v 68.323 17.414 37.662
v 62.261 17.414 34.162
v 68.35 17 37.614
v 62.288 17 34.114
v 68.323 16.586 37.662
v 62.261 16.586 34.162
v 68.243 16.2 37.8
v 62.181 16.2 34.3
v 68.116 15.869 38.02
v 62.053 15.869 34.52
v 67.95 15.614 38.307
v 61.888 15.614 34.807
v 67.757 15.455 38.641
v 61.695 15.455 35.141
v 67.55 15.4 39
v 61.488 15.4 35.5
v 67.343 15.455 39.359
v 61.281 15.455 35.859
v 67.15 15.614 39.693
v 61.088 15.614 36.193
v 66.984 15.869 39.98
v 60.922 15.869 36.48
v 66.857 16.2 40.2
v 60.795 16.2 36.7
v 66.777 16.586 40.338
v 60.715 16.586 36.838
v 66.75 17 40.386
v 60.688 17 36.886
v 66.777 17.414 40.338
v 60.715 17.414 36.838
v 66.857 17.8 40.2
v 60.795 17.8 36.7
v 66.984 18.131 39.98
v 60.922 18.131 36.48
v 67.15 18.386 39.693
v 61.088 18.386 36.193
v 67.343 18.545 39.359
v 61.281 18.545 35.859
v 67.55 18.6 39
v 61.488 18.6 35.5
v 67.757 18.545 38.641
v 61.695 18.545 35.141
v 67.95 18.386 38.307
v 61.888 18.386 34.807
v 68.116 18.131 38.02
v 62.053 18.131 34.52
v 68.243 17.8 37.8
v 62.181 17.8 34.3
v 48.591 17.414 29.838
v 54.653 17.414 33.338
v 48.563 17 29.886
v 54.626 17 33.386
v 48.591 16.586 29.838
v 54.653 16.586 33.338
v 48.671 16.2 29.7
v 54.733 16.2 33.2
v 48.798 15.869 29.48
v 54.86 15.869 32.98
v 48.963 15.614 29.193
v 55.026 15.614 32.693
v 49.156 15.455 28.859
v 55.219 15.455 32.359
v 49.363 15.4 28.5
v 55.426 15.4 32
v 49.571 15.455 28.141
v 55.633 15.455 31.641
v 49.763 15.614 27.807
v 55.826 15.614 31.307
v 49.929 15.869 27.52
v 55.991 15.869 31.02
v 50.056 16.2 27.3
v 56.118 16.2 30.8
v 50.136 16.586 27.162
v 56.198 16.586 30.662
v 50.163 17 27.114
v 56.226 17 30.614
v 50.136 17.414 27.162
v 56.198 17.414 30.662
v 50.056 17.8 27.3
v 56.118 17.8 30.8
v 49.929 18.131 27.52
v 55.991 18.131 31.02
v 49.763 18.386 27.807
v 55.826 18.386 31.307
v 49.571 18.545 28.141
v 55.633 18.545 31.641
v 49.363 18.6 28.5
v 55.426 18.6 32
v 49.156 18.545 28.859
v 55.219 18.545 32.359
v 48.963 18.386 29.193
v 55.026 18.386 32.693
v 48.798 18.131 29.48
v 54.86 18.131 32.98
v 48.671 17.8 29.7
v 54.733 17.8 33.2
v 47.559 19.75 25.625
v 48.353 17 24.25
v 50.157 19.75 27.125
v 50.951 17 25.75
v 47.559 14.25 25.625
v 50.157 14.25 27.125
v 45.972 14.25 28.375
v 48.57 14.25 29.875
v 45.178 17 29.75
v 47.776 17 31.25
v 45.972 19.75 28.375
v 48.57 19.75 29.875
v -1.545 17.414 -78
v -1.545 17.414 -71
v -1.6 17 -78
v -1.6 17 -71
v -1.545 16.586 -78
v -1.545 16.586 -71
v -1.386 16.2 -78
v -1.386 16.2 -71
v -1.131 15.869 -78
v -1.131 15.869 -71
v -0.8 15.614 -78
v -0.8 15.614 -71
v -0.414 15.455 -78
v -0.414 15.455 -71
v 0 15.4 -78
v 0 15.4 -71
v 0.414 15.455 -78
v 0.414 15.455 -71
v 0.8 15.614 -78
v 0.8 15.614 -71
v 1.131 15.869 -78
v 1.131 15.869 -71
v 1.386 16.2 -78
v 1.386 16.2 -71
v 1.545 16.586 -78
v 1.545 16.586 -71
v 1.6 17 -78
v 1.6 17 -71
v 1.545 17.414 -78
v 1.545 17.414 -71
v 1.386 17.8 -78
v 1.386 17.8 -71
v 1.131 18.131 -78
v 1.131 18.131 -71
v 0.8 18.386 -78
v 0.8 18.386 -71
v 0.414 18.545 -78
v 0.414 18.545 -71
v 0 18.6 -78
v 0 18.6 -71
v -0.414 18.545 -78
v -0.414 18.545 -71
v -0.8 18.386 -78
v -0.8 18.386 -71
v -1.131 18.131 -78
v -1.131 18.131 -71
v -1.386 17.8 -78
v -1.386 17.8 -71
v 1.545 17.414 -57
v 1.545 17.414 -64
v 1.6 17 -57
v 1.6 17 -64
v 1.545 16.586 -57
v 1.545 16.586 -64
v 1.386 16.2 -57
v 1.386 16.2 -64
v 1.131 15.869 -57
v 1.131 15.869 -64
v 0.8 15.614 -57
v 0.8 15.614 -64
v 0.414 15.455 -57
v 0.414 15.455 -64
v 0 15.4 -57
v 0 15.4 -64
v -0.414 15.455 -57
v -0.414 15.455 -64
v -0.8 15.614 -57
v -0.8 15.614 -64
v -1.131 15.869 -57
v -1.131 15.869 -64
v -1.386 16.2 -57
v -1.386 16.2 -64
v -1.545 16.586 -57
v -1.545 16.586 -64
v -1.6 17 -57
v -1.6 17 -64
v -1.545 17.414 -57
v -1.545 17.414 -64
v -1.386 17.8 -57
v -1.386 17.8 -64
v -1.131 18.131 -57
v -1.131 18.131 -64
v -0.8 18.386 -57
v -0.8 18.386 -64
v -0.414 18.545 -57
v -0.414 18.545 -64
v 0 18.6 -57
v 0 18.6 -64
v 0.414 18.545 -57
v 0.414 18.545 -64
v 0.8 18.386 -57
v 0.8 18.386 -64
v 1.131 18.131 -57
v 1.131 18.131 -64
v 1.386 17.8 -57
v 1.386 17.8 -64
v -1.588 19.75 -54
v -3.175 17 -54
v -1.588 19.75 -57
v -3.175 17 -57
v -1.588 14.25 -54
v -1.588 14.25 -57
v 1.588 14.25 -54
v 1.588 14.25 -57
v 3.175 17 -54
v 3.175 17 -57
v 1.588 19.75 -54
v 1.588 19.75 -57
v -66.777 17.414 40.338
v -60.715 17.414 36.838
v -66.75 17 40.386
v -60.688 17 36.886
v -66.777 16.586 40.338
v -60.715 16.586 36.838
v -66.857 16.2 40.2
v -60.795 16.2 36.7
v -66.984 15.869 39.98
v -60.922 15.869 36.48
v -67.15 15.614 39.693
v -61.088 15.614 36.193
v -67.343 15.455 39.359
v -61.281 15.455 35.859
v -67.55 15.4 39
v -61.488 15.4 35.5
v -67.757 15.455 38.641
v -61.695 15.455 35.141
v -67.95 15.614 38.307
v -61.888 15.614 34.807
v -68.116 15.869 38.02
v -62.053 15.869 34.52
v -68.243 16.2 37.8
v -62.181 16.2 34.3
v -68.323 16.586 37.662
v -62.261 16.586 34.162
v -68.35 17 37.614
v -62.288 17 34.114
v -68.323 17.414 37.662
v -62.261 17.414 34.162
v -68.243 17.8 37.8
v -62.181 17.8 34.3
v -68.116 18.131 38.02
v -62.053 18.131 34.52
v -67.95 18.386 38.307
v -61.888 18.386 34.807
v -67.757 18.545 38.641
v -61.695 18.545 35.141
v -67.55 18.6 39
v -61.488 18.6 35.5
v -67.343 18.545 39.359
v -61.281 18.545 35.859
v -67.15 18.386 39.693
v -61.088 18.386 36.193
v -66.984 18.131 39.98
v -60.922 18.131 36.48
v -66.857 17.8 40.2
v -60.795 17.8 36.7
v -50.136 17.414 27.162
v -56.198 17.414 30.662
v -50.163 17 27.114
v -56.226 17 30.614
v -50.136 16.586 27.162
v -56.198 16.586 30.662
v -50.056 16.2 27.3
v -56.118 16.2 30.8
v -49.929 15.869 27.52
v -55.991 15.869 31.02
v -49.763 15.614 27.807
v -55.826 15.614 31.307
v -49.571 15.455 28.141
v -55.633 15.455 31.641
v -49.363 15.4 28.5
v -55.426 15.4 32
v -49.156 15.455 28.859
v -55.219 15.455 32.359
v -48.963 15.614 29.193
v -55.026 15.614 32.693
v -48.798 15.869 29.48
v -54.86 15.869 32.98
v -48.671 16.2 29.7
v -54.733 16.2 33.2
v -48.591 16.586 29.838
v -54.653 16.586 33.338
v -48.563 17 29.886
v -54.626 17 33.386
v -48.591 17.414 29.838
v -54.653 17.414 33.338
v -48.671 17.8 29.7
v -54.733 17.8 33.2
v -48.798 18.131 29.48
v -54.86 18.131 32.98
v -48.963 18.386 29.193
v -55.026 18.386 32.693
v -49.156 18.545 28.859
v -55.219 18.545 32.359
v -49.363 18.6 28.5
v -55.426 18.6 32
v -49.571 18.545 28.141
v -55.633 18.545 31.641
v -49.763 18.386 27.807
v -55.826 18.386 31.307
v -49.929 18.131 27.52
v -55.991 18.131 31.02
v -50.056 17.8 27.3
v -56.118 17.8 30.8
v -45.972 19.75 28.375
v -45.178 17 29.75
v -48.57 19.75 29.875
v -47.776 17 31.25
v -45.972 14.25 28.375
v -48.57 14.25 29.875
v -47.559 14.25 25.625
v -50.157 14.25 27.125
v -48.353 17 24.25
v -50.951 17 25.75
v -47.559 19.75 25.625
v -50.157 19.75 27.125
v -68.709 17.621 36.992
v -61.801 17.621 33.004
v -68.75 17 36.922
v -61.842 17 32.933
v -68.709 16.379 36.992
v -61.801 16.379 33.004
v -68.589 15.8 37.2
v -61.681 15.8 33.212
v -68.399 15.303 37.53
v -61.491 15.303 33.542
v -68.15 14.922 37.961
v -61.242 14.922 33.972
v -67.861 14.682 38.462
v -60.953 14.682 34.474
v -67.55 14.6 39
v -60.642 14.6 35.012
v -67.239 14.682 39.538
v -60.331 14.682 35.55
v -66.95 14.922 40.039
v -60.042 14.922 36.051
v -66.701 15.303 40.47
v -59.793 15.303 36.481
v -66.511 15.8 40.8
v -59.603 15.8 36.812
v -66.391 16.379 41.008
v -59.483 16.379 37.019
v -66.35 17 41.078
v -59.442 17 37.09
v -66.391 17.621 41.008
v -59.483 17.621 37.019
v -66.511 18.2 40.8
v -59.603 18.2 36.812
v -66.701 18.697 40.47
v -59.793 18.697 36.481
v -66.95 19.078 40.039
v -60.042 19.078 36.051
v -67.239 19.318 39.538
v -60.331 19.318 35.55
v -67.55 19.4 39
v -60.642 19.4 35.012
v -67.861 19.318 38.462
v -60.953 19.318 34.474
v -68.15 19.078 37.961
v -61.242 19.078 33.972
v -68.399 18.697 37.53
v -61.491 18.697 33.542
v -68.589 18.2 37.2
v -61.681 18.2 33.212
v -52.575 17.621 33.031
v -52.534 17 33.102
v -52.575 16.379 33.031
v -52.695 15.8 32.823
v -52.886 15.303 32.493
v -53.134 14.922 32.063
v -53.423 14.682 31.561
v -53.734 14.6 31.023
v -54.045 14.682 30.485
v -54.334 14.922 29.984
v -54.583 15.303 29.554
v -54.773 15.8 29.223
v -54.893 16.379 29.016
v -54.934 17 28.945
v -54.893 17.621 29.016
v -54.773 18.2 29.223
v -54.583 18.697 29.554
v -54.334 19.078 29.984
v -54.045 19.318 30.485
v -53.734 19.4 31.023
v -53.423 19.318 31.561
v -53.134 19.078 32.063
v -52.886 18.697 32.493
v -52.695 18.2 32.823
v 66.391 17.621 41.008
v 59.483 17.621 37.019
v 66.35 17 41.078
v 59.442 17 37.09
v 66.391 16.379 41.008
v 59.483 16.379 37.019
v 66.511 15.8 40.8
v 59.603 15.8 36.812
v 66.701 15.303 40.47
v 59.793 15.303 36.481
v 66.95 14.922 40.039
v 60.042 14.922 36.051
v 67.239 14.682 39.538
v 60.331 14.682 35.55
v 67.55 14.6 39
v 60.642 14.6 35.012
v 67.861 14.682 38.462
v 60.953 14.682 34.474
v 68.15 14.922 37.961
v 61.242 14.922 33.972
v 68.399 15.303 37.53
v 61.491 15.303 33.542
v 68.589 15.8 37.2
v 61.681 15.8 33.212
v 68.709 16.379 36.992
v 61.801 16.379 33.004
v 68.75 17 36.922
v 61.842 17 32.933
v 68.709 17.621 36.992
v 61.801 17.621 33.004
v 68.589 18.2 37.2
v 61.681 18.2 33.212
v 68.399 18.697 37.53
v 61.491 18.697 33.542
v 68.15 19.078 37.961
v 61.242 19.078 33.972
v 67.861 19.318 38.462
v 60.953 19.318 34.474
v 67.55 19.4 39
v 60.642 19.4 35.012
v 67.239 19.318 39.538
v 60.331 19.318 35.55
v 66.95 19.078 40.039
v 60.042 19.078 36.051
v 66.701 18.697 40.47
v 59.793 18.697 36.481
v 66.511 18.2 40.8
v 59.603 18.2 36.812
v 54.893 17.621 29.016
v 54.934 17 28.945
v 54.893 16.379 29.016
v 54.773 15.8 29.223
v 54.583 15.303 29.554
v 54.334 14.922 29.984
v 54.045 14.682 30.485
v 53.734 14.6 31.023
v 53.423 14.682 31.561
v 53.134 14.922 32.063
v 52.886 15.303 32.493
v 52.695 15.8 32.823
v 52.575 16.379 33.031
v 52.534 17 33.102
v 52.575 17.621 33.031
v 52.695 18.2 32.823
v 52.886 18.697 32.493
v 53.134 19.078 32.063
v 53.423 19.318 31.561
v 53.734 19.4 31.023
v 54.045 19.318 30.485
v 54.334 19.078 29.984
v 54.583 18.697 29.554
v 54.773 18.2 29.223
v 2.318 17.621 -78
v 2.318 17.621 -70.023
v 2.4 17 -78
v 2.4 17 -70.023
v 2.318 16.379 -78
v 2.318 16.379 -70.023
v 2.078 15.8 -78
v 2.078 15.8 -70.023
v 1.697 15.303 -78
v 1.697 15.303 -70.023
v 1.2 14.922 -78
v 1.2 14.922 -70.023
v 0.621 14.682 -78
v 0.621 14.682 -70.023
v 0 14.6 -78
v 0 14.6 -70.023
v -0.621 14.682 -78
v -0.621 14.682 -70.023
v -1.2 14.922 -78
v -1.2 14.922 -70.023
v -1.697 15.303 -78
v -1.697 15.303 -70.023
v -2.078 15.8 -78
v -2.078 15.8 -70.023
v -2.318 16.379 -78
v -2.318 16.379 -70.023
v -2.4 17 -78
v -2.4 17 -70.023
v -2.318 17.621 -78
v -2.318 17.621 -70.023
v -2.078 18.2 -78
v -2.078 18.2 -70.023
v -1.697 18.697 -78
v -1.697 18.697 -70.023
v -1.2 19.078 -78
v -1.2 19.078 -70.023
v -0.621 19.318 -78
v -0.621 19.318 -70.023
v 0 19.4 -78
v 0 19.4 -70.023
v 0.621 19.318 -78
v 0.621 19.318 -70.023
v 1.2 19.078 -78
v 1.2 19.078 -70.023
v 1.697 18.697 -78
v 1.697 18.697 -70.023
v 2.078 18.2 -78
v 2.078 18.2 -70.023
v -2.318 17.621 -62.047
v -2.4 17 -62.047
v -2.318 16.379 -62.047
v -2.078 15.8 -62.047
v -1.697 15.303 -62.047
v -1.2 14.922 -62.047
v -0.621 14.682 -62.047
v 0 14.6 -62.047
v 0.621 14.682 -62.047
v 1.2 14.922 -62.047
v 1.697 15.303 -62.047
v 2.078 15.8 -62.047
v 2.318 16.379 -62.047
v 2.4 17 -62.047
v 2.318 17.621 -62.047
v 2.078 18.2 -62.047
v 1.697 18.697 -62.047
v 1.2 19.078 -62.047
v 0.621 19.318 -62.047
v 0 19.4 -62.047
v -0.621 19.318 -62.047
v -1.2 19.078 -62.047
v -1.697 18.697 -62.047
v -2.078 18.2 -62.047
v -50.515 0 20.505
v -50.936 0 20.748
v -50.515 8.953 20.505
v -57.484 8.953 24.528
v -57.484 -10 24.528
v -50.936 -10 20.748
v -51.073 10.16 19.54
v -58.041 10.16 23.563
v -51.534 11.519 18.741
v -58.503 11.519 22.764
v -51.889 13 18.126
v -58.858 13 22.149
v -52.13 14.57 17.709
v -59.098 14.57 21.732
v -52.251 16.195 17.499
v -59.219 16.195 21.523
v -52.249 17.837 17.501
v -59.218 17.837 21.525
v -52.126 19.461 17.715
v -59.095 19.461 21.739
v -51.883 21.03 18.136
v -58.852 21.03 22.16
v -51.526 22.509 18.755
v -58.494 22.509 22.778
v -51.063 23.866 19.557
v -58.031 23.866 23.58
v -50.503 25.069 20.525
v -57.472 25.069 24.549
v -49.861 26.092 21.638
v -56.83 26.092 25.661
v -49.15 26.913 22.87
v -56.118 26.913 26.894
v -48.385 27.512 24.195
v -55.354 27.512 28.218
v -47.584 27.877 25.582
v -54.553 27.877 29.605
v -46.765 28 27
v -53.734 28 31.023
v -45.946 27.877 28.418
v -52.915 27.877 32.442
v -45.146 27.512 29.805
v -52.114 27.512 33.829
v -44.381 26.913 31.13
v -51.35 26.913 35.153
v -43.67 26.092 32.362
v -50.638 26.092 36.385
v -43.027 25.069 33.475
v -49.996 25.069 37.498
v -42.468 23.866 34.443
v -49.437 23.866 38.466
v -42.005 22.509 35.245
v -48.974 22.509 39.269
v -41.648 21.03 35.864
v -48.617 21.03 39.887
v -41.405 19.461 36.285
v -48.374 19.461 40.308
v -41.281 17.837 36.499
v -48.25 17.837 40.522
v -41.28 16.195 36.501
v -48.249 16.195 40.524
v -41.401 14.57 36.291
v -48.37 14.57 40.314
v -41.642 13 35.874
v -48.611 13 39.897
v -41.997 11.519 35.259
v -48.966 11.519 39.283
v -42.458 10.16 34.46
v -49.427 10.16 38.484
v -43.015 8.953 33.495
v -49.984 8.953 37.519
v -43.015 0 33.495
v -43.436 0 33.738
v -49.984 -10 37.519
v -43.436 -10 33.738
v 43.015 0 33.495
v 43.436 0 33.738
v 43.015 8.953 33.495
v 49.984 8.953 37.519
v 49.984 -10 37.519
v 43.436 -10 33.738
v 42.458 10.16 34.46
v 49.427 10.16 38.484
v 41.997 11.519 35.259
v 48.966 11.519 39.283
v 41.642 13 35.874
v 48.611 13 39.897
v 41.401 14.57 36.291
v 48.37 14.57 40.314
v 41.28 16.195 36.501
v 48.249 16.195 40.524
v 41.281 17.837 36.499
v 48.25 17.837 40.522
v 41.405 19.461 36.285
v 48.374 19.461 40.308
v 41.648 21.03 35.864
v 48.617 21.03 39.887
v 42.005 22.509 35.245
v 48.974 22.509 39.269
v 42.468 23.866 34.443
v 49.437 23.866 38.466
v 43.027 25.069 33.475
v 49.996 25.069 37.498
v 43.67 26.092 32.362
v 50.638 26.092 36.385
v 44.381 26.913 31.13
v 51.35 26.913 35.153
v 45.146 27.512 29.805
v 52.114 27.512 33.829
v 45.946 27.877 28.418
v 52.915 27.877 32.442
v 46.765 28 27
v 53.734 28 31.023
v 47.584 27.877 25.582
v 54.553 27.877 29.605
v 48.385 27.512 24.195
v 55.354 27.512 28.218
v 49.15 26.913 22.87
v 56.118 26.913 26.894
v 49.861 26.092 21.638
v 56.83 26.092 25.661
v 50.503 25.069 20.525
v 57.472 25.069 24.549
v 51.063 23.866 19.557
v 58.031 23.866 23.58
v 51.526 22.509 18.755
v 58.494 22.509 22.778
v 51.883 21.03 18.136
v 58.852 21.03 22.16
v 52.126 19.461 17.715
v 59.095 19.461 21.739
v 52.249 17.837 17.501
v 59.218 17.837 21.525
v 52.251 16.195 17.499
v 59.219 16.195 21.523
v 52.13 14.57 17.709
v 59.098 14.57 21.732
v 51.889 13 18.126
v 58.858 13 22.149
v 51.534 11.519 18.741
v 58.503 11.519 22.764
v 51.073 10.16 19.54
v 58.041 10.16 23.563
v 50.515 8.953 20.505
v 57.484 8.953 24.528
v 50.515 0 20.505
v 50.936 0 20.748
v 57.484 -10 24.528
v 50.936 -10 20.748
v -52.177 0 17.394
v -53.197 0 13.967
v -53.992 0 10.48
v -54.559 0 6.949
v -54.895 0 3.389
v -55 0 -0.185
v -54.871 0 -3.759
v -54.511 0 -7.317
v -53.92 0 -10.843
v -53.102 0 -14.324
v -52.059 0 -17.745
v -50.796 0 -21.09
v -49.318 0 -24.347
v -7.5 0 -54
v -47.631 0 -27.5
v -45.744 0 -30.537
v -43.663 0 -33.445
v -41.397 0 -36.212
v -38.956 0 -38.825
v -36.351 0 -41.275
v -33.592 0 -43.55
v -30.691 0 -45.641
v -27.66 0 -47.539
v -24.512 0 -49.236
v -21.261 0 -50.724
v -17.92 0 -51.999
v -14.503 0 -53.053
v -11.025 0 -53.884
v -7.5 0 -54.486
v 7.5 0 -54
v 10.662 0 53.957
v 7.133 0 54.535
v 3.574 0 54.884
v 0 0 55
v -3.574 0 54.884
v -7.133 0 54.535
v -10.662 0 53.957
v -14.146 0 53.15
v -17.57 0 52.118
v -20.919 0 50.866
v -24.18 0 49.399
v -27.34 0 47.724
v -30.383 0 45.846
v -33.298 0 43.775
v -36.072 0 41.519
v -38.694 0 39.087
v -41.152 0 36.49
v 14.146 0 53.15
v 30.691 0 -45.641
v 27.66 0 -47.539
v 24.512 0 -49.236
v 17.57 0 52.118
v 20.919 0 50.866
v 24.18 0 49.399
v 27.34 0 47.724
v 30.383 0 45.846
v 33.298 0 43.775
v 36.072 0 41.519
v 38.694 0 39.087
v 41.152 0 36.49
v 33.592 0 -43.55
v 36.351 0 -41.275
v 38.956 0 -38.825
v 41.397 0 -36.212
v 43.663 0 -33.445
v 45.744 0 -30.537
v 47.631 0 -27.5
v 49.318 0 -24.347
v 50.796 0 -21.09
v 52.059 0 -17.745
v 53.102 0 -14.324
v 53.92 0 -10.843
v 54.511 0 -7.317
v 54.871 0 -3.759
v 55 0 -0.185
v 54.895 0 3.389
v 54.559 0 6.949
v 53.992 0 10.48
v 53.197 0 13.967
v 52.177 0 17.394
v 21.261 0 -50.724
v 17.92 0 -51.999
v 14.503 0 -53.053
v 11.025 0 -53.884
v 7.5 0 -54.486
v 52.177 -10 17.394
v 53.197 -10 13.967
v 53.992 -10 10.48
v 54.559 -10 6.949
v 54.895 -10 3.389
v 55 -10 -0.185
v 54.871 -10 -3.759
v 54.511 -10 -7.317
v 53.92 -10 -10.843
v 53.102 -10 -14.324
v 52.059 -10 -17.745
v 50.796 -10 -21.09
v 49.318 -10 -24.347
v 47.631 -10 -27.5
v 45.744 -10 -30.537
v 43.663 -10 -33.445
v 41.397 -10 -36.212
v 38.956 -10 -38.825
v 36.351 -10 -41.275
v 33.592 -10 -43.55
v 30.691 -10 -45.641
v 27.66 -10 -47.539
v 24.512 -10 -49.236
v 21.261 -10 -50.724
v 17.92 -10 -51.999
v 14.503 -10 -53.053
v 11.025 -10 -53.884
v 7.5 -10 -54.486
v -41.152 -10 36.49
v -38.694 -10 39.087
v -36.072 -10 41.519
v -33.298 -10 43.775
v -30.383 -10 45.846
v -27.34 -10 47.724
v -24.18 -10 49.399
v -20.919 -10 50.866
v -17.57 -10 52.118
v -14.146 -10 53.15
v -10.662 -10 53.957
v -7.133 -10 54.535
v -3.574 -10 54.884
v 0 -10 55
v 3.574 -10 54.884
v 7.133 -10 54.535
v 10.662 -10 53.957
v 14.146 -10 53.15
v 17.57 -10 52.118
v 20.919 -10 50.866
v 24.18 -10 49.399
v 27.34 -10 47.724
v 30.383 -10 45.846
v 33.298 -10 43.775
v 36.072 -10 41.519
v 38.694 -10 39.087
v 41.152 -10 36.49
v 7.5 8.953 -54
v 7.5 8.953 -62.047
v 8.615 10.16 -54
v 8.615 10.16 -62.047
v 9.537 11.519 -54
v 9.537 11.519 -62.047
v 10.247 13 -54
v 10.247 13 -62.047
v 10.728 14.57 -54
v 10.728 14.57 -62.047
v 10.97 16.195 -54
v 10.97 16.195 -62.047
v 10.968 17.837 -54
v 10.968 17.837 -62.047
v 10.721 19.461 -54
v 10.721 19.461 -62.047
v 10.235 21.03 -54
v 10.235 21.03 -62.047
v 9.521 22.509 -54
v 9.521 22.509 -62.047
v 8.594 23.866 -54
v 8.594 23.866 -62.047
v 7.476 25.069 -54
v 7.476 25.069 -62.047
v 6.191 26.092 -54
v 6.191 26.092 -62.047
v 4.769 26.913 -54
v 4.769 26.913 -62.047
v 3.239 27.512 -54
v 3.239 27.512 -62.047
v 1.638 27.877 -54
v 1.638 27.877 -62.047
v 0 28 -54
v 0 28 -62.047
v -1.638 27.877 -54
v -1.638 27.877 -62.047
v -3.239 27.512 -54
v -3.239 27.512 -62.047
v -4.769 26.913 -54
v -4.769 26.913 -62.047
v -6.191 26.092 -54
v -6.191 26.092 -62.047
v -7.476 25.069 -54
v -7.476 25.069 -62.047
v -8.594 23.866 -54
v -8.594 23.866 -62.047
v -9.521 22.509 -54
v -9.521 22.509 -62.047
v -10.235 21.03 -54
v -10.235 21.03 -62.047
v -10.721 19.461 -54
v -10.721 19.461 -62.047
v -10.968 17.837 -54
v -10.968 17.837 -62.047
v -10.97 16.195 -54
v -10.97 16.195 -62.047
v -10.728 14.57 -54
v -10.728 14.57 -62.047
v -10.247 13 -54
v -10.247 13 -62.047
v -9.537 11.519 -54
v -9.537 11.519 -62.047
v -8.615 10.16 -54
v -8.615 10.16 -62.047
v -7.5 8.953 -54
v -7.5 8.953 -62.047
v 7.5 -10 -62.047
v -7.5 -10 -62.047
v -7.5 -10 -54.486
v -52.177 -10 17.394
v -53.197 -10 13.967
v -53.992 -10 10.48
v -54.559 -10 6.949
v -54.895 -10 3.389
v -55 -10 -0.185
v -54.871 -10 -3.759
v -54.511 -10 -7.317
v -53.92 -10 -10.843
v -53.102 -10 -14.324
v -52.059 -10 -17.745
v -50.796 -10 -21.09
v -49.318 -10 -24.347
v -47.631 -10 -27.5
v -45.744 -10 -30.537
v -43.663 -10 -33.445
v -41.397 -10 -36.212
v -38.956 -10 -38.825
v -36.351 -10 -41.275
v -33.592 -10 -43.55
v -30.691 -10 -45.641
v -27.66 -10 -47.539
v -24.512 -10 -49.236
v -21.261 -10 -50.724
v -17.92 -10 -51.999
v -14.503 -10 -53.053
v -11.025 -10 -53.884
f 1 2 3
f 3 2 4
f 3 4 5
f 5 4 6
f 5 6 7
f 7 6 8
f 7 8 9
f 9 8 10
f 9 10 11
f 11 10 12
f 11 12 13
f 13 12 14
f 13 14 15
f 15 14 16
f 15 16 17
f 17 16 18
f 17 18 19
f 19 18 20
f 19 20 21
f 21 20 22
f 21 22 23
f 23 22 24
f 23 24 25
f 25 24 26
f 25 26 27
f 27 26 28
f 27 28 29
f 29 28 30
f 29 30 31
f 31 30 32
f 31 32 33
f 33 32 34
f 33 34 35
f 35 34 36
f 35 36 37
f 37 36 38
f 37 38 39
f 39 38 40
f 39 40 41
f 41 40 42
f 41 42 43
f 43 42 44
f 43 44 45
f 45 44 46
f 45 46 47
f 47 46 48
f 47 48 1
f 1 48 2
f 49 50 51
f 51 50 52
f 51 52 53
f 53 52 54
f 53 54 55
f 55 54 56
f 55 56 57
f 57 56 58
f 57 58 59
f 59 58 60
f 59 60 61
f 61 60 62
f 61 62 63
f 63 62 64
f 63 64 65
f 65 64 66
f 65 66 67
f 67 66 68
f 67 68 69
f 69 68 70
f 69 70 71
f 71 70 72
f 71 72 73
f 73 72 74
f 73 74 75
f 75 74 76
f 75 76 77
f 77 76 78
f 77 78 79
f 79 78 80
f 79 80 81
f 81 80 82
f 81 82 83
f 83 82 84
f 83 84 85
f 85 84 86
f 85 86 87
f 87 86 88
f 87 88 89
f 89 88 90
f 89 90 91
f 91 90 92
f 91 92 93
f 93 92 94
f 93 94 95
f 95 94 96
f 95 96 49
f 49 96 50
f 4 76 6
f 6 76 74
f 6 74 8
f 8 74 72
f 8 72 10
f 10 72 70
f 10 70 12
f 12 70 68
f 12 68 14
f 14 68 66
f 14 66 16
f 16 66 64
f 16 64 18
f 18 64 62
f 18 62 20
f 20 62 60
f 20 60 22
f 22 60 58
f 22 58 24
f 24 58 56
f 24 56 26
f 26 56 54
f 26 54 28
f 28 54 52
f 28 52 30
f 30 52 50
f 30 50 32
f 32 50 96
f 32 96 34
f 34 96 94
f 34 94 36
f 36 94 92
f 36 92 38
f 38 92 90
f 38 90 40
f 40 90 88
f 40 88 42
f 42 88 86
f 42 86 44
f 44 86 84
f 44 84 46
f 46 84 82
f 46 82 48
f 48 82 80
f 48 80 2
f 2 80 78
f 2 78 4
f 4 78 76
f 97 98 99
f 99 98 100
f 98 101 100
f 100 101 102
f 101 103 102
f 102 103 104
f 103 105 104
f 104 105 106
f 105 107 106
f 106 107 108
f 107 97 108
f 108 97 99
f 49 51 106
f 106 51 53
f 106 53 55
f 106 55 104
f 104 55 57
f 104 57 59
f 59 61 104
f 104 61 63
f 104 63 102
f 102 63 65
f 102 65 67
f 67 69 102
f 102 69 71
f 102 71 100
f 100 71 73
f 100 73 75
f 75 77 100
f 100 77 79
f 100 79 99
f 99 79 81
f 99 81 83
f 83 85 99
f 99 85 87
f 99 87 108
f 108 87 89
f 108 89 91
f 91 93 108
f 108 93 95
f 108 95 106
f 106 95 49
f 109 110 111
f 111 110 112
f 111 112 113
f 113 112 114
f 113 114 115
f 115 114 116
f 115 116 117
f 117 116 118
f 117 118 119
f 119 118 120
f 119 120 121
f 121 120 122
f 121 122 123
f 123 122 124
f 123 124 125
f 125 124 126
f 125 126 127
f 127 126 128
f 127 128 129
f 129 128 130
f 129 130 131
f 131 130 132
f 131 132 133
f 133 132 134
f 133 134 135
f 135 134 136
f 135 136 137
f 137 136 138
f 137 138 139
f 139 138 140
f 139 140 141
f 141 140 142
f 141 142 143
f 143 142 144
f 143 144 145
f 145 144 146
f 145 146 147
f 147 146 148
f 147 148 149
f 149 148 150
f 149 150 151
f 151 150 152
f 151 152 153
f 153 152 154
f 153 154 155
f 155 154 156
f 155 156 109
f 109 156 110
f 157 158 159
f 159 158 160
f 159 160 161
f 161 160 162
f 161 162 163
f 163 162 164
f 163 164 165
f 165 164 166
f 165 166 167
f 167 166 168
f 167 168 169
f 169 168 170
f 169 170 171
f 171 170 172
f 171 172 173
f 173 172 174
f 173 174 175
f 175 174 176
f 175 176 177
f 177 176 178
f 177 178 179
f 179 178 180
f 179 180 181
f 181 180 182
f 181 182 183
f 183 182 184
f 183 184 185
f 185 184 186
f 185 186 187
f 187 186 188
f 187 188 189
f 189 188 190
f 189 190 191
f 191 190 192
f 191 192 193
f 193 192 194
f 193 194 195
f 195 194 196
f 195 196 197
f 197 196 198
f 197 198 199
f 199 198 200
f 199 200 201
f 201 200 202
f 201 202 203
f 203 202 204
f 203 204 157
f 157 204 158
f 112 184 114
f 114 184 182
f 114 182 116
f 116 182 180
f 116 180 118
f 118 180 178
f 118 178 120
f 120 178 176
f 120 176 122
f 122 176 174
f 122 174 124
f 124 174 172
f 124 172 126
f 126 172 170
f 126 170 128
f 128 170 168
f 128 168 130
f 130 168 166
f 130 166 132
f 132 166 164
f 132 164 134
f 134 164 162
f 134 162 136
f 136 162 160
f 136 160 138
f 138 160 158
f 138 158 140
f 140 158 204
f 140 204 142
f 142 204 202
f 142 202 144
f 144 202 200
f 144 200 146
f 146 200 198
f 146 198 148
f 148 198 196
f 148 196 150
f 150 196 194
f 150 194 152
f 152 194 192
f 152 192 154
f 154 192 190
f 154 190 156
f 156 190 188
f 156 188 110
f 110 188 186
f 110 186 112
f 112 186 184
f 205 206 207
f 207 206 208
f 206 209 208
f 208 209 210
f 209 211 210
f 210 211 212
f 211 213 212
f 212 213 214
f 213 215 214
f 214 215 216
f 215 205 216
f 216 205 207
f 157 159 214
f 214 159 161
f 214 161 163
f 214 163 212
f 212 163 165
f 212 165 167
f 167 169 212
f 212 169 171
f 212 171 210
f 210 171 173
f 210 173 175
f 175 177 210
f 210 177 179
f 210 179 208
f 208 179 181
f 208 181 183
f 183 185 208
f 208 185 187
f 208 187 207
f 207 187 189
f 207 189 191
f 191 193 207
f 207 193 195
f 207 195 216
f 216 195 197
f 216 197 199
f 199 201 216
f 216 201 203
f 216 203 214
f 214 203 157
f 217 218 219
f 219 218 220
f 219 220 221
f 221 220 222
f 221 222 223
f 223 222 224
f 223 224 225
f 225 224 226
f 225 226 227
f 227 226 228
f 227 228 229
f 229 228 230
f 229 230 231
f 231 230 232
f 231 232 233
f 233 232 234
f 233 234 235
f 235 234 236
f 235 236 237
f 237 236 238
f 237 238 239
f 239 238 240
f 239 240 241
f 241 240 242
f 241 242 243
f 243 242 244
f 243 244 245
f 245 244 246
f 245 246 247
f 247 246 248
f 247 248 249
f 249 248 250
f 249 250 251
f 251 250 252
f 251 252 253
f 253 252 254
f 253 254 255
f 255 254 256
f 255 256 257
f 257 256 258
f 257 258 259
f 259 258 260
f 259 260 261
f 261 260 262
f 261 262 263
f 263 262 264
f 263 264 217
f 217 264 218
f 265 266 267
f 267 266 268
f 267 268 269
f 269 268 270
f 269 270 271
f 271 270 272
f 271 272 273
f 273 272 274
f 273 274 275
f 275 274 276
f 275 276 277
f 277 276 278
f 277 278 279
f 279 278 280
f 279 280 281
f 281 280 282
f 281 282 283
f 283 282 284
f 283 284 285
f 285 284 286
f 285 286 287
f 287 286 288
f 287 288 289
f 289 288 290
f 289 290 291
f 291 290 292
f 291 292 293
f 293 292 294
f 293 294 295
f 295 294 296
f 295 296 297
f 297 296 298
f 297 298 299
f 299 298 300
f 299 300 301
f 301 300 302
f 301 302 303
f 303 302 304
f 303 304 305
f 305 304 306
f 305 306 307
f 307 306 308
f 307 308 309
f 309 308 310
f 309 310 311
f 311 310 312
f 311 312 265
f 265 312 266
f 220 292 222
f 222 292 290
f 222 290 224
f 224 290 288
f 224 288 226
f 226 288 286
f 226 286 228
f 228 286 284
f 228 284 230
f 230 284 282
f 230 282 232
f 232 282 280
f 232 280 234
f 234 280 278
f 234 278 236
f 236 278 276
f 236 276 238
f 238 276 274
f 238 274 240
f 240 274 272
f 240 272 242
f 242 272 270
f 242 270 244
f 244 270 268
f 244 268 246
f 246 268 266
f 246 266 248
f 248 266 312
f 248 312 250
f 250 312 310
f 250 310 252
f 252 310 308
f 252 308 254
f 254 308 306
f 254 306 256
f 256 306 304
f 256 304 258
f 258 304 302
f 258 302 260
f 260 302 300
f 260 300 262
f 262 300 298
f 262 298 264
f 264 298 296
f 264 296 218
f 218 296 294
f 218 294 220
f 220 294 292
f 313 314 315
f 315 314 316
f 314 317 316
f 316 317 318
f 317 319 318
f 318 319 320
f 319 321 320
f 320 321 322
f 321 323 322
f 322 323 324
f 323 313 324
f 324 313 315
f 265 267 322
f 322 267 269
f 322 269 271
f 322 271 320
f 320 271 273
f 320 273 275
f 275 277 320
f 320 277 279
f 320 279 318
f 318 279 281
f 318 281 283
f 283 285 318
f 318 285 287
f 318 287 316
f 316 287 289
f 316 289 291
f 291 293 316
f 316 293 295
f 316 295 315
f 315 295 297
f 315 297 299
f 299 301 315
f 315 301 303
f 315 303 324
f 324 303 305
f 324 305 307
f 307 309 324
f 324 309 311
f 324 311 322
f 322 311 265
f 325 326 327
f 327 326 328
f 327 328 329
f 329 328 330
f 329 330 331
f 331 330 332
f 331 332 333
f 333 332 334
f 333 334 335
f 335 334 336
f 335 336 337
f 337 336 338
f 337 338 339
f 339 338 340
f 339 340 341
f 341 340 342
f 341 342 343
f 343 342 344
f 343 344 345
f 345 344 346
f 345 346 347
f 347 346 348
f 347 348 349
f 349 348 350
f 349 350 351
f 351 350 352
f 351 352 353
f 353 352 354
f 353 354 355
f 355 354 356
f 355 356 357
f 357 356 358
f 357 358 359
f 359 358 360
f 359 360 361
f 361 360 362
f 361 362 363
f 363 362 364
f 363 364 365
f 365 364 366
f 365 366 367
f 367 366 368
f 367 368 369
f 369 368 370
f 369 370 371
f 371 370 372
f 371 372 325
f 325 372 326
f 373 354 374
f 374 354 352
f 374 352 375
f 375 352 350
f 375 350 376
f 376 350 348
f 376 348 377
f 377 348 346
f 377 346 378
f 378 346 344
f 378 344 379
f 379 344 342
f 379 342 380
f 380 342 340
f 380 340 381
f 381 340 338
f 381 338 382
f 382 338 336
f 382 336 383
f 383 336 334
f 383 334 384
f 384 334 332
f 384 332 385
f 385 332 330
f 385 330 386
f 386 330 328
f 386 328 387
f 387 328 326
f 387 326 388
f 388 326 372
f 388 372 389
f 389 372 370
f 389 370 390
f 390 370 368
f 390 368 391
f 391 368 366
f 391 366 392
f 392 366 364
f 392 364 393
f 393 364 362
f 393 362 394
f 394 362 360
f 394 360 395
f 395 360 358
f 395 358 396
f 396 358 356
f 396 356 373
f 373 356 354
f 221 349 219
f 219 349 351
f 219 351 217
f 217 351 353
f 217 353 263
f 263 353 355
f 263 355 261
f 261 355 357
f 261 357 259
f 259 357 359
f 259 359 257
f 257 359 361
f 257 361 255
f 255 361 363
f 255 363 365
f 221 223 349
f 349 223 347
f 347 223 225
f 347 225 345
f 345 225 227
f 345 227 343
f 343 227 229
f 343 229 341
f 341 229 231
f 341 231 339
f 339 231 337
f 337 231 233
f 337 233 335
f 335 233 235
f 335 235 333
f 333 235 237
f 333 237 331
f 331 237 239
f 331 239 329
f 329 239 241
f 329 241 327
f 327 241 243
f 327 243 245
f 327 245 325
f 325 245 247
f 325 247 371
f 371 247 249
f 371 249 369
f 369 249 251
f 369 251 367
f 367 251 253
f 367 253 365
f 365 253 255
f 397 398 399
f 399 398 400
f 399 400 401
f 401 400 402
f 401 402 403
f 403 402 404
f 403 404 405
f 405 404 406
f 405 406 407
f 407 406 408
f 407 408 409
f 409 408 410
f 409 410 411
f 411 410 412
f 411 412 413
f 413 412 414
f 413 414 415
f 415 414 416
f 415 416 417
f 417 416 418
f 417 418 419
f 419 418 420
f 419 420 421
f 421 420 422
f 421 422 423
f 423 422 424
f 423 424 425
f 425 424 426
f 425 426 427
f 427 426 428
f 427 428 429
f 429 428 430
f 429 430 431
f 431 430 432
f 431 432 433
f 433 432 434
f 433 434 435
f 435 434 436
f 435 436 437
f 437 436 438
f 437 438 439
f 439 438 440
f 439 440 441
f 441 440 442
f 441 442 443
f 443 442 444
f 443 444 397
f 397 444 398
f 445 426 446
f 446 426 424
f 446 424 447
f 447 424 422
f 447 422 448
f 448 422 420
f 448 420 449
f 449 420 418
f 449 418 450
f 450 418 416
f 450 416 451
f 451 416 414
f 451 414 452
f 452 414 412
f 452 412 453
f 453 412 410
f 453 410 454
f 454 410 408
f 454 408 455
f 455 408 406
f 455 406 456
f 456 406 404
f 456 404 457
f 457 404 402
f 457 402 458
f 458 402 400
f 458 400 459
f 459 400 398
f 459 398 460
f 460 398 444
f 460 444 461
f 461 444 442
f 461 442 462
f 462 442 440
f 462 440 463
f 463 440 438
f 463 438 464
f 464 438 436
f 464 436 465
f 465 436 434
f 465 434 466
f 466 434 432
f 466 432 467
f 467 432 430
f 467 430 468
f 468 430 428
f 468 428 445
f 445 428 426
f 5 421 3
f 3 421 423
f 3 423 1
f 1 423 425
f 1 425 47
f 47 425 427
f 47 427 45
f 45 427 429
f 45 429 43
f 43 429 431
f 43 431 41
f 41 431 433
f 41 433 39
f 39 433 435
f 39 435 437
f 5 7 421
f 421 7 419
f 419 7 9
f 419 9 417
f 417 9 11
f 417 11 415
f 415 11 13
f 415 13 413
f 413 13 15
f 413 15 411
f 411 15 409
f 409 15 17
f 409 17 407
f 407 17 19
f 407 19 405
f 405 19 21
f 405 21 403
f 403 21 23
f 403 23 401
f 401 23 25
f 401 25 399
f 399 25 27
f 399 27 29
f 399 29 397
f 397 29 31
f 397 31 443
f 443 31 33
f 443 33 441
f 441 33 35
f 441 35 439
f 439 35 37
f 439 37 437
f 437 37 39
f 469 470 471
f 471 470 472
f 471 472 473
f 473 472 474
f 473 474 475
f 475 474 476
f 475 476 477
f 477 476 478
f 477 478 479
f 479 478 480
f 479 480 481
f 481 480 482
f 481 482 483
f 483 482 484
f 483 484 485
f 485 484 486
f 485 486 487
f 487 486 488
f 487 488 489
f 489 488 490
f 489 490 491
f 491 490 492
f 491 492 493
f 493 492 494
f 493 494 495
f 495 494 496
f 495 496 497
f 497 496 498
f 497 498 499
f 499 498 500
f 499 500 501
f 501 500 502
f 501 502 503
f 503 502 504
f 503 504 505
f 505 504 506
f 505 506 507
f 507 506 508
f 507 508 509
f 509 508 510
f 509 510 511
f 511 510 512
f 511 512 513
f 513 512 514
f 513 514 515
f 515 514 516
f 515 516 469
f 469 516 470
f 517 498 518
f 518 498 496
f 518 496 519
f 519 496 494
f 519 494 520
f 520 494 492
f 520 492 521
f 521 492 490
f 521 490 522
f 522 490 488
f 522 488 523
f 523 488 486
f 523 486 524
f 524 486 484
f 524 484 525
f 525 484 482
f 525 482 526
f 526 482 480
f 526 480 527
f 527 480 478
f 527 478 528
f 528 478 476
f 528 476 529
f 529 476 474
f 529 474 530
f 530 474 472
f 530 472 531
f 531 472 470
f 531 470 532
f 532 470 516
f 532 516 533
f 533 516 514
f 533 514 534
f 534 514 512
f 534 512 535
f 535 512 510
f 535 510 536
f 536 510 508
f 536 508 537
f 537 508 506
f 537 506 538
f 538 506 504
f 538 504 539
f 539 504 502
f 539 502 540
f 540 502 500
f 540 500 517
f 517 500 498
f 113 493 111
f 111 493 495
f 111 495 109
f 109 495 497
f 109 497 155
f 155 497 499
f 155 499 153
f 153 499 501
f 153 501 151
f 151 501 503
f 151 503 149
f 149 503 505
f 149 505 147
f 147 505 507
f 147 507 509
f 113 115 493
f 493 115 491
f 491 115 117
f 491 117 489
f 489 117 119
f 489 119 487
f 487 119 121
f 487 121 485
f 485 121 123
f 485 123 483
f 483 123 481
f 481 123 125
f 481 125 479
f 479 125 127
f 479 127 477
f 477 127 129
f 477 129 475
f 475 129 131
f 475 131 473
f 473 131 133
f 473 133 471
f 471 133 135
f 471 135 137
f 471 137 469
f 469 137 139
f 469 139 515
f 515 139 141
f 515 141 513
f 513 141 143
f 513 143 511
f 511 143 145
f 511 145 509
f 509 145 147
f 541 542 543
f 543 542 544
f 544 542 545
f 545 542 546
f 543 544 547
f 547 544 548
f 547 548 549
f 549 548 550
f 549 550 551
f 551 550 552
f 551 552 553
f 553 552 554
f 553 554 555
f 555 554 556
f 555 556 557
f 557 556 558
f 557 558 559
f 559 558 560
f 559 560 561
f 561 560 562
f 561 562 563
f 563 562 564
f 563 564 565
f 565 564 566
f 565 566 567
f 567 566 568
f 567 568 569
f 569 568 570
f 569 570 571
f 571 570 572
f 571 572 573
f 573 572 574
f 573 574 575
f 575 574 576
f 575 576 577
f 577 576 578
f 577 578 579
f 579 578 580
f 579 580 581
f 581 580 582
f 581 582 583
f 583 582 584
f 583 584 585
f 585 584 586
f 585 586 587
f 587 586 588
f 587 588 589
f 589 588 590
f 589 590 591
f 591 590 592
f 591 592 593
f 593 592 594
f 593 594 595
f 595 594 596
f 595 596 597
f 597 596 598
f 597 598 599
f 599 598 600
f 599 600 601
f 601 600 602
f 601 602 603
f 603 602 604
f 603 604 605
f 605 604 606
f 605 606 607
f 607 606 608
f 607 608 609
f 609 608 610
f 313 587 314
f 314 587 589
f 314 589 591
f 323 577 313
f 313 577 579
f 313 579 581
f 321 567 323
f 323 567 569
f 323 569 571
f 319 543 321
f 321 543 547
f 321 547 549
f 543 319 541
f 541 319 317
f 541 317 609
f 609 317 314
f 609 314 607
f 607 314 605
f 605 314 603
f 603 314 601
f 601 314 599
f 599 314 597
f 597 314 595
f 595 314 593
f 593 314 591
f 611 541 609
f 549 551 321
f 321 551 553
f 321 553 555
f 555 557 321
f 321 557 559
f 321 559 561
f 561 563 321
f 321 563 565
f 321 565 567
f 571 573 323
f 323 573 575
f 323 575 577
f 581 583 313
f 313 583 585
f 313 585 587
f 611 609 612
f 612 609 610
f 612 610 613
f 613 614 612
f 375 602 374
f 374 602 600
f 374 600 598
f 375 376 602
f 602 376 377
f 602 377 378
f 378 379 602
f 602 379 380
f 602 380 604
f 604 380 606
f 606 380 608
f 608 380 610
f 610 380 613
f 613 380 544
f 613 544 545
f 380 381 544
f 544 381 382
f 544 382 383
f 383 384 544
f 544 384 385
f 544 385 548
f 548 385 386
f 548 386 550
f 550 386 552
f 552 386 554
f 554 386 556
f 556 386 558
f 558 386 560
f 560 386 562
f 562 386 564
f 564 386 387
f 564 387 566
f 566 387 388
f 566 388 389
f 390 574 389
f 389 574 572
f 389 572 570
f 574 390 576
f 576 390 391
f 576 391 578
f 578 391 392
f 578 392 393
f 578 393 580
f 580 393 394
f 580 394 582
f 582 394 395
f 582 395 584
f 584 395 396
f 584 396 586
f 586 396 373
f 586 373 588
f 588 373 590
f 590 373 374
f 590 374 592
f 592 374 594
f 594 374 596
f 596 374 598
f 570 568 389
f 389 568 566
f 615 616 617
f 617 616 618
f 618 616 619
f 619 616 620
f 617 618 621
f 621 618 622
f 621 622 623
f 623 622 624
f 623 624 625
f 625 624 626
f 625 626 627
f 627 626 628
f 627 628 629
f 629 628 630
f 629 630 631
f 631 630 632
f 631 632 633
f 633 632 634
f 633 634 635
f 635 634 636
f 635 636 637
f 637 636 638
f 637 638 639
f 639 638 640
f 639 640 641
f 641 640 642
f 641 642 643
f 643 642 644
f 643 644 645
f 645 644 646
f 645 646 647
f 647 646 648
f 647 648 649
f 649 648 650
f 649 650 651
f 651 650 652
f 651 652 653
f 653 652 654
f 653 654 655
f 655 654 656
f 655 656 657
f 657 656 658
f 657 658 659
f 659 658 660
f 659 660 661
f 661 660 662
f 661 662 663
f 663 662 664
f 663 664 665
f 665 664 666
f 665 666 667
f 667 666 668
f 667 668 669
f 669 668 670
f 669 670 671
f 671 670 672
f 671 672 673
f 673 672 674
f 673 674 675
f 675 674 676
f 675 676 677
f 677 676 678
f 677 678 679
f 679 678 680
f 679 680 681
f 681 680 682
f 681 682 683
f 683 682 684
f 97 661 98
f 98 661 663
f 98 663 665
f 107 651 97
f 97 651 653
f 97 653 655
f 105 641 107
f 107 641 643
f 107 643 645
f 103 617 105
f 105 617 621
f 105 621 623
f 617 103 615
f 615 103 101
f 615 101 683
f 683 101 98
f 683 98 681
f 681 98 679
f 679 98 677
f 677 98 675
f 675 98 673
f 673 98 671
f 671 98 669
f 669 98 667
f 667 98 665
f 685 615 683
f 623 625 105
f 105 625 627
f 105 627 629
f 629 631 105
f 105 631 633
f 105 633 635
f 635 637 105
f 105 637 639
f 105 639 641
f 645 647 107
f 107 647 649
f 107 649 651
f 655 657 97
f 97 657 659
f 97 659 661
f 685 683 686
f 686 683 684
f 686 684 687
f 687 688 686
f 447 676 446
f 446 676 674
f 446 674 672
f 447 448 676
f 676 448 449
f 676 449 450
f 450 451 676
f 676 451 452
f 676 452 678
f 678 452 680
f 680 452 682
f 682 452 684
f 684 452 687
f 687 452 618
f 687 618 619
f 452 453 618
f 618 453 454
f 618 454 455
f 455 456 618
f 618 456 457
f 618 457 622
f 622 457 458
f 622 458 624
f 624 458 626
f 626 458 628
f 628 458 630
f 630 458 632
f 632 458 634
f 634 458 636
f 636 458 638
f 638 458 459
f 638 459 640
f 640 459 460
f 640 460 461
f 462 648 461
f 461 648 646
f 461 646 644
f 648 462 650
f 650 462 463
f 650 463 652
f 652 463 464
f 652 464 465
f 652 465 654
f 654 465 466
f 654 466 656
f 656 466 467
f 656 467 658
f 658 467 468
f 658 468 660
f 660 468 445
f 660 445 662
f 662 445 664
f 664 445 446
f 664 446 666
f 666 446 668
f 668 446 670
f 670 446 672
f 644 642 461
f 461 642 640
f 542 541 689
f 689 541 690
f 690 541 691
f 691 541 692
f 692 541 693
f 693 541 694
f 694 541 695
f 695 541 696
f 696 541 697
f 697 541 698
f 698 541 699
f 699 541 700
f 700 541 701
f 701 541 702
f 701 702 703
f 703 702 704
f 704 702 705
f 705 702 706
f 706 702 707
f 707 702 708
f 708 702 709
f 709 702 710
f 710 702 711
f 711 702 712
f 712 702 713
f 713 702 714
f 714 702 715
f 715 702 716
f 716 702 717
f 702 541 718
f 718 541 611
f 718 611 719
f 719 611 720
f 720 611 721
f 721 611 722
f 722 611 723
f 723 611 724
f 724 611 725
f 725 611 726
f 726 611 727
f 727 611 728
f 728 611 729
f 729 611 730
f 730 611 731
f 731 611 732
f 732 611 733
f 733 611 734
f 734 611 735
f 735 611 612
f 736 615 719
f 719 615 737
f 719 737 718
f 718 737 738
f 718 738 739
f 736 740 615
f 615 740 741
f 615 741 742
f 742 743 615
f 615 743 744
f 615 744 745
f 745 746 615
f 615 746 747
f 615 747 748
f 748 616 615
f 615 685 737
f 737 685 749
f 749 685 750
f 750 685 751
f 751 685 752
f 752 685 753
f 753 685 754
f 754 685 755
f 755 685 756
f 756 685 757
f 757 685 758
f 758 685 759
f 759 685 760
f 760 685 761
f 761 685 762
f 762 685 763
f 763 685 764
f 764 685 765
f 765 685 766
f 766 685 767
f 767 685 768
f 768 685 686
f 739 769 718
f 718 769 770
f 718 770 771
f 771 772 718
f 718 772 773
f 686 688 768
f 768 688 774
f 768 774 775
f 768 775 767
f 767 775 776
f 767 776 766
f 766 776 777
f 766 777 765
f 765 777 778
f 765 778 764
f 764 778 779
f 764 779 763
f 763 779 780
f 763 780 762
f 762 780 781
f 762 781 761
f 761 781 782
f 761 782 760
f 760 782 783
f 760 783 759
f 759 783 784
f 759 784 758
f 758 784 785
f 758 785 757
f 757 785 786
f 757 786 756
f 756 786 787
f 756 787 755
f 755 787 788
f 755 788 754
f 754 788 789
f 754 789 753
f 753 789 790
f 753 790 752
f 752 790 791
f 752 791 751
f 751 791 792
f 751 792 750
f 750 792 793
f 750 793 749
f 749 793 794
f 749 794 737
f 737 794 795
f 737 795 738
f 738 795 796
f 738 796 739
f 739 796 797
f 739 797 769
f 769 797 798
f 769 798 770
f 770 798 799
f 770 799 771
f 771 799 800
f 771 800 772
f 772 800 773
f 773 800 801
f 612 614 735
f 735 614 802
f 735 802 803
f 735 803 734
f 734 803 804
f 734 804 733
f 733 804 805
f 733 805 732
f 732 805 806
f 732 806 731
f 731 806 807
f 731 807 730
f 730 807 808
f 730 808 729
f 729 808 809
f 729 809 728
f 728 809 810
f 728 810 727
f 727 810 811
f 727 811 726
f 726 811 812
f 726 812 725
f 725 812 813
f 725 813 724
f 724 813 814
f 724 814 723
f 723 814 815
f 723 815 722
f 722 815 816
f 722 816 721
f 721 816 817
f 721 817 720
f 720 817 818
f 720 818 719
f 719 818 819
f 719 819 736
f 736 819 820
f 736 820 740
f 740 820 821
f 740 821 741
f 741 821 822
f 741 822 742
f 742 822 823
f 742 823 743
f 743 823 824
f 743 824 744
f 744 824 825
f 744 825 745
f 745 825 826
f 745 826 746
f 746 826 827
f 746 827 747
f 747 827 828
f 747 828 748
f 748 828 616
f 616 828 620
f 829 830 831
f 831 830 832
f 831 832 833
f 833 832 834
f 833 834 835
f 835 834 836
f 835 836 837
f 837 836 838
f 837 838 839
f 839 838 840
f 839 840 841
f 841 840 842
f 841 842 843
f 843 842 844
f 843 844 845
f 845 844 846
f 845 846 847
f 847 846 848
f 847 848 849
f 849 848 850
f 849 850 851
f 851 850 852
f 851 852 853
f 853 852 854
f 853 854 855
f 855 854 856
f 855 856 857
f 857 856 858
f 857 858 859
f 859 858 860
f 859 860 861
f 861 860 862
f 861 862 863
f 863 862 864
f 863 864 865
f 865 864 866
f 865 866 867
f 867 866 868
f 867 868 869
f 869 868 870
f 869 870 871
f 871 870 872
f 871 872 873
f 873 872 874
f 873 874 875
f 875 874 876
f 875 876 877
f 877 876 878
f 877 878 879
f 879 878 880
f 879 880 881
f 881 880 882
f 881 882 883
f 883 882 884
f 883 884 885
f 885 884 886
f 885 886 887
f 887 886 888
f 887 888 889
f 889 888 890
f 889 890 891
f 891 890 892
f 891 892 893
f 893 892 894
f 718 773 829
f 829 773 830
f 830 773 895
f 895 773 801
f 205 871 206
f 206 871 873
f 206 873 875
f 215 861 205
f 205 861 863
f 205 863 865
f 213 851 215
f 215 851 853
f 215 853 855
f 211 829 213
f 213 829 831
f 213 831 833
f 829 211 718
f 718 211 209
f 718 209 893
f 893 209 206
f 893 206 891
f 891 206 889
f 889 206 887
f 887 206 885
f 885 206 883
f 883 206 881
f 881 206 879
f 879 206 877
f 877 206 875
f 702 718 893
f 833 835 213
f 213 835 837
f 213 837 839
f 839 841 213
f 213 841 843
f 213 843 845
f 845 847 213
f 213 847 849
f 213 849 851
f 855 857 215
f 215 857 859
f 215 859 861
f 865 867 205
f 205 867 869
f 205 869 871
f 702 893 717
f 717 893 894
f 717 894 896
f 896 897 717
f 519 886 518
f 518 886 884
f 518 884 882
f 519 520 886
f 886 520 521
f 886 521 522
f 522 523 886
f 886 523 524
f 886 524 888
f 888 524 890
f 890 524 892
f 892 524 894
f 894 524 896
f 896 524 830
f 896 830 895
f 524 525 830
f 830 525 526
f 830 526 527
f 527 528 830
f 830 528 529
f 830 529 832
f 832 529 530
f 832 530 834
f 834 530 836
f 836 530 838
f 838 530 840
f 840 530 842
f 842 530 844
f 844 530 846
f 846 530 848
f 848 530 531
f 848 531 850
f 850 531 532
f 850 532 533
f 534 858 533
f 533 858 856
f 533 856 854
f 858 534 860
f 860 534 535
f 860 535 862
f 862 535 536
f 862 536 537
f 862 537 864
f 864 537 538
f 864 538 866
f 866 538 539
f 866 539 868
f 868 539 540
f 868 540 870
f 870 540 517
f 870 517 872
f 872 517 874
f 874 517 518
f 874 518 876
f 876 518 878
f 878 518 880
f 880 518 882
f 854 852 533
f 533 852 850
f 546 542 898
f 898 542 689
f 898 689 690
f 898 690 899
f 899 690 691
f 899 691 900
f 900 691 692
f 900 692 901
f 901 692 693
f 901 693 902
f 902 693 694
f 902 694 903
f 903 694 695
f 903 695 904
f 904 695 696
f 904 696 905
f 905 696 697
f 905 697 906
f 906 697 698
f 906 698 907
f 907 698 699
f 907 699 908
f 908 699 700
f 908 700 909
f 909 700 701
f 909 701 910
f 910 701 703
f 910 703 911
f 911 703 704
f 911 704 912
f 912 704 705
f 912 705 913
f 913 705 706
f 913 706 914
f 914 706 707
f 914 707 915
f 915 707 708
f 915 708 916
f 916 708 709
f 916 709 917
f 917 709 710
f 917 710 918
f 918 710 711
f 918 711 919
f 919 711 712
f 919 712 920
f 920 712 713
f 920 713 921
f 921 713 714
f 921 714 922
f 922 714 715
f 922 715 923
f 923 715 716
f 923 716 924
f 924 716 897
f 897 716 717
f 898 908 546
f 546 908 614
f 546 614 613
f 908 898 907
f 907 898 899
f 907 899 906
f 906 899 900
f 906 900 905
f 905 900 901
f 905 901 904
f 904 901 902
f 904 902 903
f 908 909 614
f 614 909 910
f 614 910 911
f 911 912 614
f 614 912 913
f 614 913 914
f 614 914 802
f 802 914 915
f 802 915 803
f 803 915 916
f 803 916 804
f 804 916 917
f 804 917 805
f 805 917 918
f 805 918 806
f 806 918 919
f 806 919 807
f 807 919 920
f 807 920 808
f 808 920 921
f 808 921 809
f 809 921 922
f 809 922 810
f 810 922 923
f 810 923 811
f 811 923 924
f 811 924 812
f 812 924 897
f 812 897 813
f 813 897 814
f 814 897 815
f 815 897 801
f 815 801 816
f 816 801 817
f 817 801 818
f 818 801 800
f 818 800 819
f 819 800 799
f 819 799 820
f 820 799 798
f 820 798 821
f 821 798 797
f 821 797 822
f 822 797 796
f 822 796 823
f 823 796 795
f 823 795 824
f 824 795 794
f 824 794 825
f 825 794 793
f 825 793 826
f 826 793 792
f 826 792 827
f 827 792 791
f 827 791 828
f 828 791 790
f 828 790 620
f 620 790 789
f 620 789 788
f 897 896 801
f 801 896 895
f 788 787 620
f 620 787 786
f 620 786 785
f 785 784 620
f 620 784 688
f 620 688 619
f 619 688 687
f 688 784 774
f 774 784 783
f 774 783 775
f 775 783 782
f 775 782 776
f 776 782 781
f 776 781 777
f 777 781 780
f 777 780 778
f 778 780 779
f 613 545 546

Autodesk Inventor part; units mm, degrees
ref_plane "YZ Plane" through (0, 0, 0) normal (1, 0, 0) x (0, 1, 0)
ref_plane "XZ Plane" through (0, 0, 0) normal (0, 1, 0) x (-1, 0, 0)
ref_plane "XY Plane" through (0, 0, 0) normal (0, 0, 1) x (1, 0, 0)
sketch "Sketch1" plane through (0, 0, 0) normal (0, 1, 0) x (-1, 0, 0)
  circle A0 centre (0, 0) radius 55
  dimension "d0" = 110
extrude "Extrusion1" add sketch "Sketch1" against normal blind 10
sketch "Sketch2" plane through (0, 0, 0) normal (0, 1, 0) x (1, 0, 0)
  circle A0 centre (0, 0) radius 55 projected
  line L0 (-7.5, 54) -> (7.5, 54)
  line L1 (7.5, 54) -> (7.5, 62.0467)
  line L2 (7.5, 62.0467) -> (-7.5, 62.0467)
  line L3 (-7.5, 62.0467) -> (-7.5, 54)
  point P0 (0, 54)
  point P1 (7.5, 54.4862)
  point P2 (-7.5, 54.4862)
  point P3 (0, 62.0467)
  dimension "d3" = 15
  dimension "d4" = 8.0467
  dimension "d21" = 62.0467
extrude "Extrusion2" add sketch "Sketch2" along normal blind 5 and the other way blind 10 contours L1 L0 L3 A0 | A0 L3 L2 L1 picked at (0.8356, 54.3143)
sketch "Sketch3" plane through (-7.5, 0, -54) normal (0, 0, 1) x (1, 0, 0)
  line L0 (15, 0) -> (0, 0) projected
  line L1 (0, 5) -> (15, 5)
  line L2 (0, 5) -> (15, 5)
  line L3 (0, 5) -> (0, 8.9533)
  line L4 (15, 5) -> (15, 8.9533)
  arc A0 (15, 8.9533) -> (0, 8.9533) centre (7.5, 17) ccw
  line L5 (0, 5) -> (15, 5) projected
  point P0 (7.5, 0)
  point P1 (7.5, 0)
  point P2 (7.5, 5)
  point P3 (7.5, 5)
  dimension "d27" = 22
  dimension "d28" = 12
  dimension "d29" = 15
extrude "Extrusion3" add sketch "Sketch3" against normal up to surface (8.0467 mm away)
pattern_circular "Circular Pattern1" count 3 over 360 about axis through (0, 0, 0) along (0, -1, 0) of "Extrusion2", "Extrusion3"
sketch "Sketch5" plane through (-7.5, 0, -54) normal (0, 0, 1) x (1, 0, 0)
  arc A0 (15, 8.9533) -> (0, 8.9533) centre (7.5, 17) ccw projected
  circle A1 centre (7.5, 17) radius 2.4
  point P0 (7.5, 0)
  dimension "d30" = 4.8
extrude "Extrusion5" add sketch "Sketch5" against normal blind 24
pattern_circular "Circular Pattern3" count 3 over 360 about axis through (0, 0, 0) along (0, -1, 0) of "Extrusion5"
sketch "Sketch6" plane through (-50.5154, 0, 20.5048) normal (0.866, 0, -0.5) x (-0.5, 0, -0.866)
  arc A0 (0, 8.9533) -> (-15, 8.9533) centre (-7.5, 17) ccw projected
  arc A1 (0, 8.9533) -> (-15, 8.9533) centre (-7.5, 17) ccw projected
  line L0 (-4.3246, 17) -> (-5.9123, 14.25)
  line L1 (-5.9123, 14.25) -> (-9.0877, 14.25)
  line L2 (-9.0877, 14.25) -> (-10.6754, 17)
  line L3 (-10.6754, 17) -> (-9.0877, 19.75)
  line L4 (-9.0877, 19.75) -> (-5.9123, 19.75)
  line L5 (-5.9123, 19.75) -> (-4.3246, 17)
  point P0 (-7.5, 0)
  dimension "d36" = 5.5
extrude "Extrusion6" cut sketch "Sketch6" against normal blind 3
sketch "Sketch7" plane through (-53.1134, 0, 22.0048) normal (0.866, 0, -0.5) x (-0.5, 0, -0.866)
  circle A0 centre (-7.5, 17) radius 1.6
  line L0 (-9.0877, 19.75) -> (-5.9123, 19.75) projected
  line L1 (-10.6754, 17) -> (-9.0877, 19.75) projected
  line L2 (-9.0877, 14.25) -> (-10.6754, 17) projected
  line L3 (-5.9123, 14.25) -> (-9.0877, 14.25) projected
  line L4 (-4.3246, 17) -> (-5.9123, 14.25) projected
  line L5 (-5.9123, 19.75) -> (-4.3246, 17) projected
  point P0 (-7.5, 0)
  point P1 (-7.5, 14.25)
  dimension "d39" = 3.2
extrude "Extrusion7" cut sketch "Sketch7" against normal through all contours A0
pattern_circular "Circular Pattern4" count 3 over 360 about axis through (0, 0, 0) along (0, -1, 0) of "Extrusion6", "Extrusion7"
properties part number "mobile_platform"
